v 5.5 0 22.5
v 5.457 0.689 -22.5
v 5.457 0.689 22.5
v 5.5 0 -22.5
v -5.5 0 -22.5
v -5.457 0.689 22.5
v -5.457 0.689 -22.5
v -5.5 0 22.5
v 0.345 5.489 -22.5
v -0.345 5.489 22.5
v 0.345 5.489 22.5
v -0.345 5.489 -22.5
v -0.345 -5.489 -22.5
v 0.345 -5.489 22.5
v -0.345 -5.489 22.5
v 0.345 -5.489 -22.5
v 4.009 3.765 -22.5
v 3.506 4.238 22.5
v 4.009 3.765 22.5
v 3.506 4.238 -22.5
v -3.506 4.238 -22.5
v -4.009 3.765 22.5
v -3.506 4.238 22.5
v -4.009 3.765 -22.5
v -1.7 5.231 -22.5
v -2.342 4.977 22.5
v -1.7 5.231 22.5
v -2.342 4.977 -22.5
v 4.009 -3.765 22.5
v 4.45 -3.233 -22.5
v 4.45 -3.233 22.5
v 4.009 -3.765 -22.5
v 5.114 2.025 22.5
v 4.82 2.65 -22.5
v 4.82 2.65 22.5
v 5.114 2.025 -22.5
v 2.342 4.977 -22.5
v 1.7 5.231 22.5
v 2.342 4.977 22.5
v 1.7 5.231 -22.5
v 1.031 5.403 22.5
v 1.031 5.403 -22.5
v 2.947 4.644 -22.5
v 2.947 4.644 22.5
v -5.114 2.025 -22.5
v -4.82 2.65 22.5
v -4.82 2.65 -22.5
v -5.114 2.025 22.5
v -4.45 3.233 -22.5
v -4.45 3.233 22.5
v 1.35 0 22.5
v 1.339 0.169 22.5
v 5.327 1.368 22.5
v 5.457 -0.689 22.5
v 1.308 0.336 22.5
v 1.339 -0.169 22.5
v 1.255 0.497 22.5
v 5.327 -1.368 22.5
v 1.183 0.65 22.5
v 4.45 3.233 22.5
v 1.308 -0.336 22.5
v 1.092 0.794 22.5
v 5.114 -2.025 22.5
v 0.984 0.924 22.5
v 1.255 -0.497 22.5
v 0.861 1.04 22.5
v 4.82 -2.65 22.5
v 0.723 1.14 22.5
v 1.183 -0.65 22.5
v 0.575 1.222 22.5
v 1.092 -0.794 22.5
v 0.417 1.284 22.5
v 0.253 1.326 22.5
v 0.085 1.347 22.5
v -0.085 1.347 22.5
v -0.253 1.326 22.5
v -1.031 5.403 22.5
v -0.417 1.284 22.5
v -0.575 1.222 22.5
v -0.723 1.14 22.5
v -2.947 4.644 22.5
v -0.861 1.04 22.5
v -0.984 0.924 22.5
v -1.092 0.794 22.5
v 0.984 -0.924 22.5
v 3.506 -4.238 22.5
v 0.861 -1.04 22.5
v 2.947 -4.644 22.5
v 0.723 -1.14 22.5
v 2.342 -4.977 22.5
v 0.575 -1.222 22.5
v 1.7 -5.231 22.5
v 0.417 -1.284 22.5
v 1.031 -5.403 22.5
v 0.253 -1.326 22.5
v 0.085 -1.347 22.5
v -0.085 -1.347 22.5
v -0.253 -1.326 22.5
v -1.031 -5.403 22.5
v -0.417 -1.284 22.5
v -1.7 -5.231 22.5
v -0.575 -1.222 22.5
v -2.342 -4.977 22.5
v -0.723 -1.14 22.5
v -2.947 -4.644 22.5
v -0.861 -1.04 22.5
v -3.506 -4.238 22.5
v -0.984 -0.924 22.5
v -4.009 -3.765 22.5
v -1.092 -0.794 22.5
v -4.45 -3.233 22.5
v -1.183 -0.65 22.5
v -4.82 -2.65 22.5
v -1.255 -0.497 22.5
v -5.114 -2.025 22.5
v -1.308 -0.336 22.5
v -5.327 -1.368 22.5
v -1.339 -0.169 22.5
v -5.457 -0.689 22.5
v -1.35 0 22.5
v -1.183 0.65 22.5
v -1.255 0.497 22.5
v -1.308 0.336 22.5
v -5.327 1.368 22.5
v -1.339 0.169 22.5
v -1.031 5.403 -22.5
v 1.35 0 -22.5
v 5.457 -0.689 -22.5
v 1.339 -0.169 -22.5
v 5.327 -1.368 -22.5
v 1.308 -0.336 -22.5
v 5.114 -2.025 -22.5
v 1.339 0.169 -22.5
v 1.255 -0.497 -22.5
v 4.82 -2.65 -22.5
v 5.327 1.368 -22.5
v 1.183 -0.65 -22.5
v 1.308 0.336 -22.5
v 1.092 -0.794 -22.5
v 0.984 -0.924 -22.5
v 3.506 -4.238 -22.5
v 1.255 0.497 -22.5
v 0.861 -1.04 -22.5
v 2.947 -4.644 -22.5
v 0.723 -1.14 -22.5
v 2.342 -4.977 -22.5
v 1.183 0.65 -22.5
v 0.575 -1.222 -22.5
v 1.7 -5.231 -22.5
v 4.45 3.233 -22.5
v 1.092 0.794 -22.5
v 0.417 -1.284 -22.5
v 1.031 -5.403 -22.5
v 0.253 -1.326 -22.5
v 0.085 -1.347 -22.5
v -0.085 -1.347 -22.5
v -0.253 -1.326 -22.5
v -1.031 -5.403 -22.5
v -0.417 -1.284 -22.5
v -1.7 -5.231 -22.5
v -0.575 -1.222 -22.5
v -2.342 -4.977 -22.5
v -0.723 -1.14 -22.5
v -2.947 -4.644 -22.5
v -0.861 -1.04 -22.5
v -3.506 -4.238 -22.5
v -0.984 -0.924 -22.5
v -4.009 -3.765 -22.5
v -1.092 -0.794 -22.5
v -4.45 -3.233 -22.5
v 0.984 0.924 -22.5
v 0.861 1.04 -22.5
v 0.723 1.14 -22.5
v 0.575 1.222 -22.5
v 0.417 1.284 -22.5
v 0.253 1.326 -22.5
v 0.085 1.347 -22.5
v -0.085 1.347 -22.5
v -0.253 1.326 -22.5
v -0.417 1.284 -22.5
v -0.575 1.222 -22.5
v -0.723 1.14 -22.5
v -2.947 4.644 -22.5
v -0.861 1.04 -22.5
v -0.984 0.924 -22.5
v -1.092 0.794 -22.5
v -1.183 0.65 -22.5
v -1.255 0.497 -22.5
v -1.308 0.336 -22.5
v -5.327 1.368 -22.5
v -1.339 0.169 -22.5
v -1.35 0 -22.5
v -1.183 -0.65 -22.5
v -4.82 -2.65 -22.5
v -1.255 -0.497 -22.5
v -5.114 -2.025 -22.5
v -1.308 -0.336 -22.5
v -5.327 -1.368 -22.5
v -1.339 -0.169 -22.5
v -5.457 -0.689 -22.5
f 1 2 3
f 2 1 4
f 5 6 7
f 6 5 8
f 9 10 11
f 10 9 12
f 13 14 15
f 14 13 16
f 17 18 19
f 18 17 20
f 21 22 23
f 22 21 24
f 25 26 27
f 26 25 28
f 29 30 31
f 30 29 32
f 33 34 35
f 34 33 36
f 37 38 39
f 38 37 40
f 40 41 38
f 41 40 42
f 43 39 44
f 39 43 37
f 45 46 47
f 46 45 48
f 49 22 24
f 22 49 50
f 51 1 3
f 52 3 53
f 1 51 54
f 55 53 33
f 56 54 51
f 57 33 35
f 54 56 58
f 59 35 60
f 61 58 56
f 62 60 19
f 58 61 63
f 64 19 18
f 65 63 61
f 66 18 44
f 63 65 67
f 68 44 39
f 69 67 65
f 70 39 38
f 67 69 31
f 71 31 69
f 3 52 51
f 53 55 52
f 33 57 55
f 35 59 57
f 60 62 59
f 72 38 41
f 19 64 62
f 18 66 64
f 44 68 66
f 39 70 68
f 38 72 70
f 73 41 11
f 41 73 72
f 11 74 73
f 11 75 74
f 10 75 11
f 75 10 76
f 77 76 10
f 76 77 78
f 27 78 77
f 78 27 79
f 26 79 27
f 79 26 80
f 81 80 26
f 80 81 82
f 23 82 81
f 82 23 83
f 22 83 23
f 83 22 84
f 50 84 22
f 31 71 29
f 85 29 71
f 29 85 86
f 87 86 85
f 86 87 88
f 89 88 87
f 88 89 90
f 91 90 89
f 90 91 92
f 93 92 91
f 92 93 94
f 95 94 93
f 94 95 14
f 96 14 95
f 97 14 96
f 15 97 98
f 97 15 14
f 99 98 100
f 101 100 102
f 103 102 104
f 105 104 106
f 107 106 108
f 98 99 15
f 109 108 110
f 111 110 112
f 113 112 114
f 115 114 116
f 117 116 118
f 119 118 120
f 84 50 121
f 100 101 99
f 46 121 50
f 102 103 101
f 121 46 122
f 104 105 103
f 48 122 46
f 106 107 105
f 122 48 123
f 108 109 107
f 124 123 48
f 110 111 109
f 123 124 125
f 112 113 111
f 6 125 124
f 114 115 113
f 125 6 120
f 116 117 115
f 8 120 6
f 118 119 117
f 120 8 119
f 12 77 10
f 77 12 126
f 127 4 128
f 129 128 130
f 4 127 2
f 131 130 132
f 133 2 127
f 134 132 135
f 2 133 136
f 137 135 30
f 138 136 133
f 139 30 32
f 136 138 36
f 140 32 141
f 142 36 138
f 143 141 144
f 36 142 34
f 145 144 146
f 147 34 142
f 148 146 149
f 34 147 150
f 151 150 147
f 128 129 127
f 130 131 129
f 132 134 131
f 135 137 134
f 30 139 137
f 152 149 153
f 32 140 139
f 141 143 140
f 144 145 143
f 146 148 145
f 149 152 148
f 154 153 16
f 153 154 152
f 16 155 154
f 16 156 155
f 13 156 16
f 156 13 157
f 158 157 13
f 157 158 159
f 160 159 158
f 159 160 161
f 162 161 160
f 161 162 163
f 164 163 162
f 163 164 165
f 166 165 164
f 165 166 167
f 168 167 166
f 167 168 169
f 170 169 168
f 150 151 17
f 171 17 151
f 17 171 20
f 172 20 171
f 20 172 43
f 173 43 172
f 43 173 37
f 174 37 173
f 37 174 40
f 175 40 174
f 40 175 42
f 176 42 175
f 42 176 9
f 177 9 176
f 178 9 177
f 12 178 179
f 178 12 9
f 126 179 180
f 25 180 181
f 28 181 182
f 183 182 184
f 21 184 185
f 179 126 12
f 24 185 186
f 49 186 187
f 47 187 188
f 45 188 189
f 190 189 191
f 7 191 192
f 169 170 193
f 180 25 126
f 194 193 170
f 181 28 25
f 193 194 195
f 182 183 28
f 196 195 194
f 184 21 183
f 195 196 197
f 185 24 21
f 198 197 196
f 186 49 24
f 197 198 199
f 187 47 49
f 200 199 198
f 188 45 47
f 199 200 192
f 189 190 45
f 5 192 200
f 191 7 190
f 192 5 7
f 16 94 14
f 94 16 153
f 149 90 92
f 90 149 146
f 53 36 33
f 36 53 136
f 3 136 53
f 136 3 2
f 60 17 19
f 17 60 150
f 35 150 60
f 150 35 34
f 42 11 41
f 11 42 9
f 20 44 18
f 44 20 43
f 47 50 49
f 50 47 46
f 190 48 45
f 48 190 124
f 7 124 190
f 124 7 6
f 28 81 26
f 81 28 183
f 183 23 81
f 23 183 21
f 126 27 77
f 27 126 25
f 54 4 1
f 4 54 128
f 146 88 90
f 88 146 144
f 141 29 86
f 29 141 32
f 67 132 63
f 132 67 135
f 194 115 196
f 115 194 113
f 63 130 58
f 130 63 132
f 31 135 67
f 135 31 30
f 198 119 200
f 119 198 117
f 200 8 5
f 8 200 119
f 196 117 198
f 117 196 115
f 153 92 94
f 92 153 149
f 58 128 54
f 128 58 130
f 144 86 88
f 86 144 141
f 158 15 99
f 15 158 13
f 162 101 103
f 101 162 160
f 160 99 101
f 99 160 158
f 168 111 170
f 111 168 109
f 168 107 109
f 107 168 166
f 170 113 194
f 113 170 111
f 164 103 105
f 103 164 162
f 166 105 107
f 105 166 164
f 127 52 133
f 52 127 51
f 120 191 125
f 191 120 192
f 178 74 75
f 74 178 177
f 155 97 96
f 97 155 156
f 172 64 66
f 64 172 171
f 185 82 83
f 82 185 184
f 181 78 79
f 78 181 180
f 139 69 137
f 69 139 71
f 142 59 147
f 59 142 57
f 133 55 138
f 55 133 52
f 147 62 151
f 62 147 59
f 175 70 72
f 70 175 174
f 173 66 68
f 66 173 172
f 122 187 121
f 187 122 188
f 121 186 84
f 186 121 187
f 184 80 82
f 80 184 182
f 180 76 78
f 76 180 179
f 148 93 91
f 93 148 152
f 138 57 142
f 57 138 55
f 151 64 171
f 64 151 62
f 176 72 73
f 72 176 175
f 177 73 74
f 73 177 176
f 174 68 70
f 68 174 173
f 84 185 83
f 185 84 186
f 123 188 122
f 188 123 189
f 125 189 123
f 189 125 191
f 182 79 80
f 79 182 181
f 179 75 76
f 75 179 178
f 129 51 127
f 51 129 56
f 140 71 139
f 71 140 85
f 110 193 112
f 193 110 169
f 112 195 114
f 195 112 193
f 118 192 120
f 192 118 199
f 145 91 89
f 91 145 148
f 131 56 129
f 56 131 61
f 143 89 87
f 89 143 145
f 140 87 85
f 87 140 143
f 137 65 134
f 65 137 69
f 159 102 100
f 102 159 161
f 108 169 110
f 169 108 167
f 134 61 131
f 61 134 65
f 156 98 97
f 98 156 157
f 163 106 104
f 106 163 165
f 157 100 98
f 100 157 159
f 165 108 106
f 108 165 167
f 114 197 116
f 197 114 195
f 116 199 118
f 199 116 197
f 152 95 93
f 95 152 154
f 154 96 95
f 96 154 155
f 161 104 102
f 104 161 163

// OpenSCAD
$fn = 50;


difference() {
	union() {
		translate(v = [0, 0, -22.5000000000]) {
			cylinder(h = 45, r = 5.5000000000);
		}
	}
	union() {
		translate(v = [0, 0, -100.0000000000]) {
			cylinder(h = 200, r = 1.3500000000);
		}
	}
}
